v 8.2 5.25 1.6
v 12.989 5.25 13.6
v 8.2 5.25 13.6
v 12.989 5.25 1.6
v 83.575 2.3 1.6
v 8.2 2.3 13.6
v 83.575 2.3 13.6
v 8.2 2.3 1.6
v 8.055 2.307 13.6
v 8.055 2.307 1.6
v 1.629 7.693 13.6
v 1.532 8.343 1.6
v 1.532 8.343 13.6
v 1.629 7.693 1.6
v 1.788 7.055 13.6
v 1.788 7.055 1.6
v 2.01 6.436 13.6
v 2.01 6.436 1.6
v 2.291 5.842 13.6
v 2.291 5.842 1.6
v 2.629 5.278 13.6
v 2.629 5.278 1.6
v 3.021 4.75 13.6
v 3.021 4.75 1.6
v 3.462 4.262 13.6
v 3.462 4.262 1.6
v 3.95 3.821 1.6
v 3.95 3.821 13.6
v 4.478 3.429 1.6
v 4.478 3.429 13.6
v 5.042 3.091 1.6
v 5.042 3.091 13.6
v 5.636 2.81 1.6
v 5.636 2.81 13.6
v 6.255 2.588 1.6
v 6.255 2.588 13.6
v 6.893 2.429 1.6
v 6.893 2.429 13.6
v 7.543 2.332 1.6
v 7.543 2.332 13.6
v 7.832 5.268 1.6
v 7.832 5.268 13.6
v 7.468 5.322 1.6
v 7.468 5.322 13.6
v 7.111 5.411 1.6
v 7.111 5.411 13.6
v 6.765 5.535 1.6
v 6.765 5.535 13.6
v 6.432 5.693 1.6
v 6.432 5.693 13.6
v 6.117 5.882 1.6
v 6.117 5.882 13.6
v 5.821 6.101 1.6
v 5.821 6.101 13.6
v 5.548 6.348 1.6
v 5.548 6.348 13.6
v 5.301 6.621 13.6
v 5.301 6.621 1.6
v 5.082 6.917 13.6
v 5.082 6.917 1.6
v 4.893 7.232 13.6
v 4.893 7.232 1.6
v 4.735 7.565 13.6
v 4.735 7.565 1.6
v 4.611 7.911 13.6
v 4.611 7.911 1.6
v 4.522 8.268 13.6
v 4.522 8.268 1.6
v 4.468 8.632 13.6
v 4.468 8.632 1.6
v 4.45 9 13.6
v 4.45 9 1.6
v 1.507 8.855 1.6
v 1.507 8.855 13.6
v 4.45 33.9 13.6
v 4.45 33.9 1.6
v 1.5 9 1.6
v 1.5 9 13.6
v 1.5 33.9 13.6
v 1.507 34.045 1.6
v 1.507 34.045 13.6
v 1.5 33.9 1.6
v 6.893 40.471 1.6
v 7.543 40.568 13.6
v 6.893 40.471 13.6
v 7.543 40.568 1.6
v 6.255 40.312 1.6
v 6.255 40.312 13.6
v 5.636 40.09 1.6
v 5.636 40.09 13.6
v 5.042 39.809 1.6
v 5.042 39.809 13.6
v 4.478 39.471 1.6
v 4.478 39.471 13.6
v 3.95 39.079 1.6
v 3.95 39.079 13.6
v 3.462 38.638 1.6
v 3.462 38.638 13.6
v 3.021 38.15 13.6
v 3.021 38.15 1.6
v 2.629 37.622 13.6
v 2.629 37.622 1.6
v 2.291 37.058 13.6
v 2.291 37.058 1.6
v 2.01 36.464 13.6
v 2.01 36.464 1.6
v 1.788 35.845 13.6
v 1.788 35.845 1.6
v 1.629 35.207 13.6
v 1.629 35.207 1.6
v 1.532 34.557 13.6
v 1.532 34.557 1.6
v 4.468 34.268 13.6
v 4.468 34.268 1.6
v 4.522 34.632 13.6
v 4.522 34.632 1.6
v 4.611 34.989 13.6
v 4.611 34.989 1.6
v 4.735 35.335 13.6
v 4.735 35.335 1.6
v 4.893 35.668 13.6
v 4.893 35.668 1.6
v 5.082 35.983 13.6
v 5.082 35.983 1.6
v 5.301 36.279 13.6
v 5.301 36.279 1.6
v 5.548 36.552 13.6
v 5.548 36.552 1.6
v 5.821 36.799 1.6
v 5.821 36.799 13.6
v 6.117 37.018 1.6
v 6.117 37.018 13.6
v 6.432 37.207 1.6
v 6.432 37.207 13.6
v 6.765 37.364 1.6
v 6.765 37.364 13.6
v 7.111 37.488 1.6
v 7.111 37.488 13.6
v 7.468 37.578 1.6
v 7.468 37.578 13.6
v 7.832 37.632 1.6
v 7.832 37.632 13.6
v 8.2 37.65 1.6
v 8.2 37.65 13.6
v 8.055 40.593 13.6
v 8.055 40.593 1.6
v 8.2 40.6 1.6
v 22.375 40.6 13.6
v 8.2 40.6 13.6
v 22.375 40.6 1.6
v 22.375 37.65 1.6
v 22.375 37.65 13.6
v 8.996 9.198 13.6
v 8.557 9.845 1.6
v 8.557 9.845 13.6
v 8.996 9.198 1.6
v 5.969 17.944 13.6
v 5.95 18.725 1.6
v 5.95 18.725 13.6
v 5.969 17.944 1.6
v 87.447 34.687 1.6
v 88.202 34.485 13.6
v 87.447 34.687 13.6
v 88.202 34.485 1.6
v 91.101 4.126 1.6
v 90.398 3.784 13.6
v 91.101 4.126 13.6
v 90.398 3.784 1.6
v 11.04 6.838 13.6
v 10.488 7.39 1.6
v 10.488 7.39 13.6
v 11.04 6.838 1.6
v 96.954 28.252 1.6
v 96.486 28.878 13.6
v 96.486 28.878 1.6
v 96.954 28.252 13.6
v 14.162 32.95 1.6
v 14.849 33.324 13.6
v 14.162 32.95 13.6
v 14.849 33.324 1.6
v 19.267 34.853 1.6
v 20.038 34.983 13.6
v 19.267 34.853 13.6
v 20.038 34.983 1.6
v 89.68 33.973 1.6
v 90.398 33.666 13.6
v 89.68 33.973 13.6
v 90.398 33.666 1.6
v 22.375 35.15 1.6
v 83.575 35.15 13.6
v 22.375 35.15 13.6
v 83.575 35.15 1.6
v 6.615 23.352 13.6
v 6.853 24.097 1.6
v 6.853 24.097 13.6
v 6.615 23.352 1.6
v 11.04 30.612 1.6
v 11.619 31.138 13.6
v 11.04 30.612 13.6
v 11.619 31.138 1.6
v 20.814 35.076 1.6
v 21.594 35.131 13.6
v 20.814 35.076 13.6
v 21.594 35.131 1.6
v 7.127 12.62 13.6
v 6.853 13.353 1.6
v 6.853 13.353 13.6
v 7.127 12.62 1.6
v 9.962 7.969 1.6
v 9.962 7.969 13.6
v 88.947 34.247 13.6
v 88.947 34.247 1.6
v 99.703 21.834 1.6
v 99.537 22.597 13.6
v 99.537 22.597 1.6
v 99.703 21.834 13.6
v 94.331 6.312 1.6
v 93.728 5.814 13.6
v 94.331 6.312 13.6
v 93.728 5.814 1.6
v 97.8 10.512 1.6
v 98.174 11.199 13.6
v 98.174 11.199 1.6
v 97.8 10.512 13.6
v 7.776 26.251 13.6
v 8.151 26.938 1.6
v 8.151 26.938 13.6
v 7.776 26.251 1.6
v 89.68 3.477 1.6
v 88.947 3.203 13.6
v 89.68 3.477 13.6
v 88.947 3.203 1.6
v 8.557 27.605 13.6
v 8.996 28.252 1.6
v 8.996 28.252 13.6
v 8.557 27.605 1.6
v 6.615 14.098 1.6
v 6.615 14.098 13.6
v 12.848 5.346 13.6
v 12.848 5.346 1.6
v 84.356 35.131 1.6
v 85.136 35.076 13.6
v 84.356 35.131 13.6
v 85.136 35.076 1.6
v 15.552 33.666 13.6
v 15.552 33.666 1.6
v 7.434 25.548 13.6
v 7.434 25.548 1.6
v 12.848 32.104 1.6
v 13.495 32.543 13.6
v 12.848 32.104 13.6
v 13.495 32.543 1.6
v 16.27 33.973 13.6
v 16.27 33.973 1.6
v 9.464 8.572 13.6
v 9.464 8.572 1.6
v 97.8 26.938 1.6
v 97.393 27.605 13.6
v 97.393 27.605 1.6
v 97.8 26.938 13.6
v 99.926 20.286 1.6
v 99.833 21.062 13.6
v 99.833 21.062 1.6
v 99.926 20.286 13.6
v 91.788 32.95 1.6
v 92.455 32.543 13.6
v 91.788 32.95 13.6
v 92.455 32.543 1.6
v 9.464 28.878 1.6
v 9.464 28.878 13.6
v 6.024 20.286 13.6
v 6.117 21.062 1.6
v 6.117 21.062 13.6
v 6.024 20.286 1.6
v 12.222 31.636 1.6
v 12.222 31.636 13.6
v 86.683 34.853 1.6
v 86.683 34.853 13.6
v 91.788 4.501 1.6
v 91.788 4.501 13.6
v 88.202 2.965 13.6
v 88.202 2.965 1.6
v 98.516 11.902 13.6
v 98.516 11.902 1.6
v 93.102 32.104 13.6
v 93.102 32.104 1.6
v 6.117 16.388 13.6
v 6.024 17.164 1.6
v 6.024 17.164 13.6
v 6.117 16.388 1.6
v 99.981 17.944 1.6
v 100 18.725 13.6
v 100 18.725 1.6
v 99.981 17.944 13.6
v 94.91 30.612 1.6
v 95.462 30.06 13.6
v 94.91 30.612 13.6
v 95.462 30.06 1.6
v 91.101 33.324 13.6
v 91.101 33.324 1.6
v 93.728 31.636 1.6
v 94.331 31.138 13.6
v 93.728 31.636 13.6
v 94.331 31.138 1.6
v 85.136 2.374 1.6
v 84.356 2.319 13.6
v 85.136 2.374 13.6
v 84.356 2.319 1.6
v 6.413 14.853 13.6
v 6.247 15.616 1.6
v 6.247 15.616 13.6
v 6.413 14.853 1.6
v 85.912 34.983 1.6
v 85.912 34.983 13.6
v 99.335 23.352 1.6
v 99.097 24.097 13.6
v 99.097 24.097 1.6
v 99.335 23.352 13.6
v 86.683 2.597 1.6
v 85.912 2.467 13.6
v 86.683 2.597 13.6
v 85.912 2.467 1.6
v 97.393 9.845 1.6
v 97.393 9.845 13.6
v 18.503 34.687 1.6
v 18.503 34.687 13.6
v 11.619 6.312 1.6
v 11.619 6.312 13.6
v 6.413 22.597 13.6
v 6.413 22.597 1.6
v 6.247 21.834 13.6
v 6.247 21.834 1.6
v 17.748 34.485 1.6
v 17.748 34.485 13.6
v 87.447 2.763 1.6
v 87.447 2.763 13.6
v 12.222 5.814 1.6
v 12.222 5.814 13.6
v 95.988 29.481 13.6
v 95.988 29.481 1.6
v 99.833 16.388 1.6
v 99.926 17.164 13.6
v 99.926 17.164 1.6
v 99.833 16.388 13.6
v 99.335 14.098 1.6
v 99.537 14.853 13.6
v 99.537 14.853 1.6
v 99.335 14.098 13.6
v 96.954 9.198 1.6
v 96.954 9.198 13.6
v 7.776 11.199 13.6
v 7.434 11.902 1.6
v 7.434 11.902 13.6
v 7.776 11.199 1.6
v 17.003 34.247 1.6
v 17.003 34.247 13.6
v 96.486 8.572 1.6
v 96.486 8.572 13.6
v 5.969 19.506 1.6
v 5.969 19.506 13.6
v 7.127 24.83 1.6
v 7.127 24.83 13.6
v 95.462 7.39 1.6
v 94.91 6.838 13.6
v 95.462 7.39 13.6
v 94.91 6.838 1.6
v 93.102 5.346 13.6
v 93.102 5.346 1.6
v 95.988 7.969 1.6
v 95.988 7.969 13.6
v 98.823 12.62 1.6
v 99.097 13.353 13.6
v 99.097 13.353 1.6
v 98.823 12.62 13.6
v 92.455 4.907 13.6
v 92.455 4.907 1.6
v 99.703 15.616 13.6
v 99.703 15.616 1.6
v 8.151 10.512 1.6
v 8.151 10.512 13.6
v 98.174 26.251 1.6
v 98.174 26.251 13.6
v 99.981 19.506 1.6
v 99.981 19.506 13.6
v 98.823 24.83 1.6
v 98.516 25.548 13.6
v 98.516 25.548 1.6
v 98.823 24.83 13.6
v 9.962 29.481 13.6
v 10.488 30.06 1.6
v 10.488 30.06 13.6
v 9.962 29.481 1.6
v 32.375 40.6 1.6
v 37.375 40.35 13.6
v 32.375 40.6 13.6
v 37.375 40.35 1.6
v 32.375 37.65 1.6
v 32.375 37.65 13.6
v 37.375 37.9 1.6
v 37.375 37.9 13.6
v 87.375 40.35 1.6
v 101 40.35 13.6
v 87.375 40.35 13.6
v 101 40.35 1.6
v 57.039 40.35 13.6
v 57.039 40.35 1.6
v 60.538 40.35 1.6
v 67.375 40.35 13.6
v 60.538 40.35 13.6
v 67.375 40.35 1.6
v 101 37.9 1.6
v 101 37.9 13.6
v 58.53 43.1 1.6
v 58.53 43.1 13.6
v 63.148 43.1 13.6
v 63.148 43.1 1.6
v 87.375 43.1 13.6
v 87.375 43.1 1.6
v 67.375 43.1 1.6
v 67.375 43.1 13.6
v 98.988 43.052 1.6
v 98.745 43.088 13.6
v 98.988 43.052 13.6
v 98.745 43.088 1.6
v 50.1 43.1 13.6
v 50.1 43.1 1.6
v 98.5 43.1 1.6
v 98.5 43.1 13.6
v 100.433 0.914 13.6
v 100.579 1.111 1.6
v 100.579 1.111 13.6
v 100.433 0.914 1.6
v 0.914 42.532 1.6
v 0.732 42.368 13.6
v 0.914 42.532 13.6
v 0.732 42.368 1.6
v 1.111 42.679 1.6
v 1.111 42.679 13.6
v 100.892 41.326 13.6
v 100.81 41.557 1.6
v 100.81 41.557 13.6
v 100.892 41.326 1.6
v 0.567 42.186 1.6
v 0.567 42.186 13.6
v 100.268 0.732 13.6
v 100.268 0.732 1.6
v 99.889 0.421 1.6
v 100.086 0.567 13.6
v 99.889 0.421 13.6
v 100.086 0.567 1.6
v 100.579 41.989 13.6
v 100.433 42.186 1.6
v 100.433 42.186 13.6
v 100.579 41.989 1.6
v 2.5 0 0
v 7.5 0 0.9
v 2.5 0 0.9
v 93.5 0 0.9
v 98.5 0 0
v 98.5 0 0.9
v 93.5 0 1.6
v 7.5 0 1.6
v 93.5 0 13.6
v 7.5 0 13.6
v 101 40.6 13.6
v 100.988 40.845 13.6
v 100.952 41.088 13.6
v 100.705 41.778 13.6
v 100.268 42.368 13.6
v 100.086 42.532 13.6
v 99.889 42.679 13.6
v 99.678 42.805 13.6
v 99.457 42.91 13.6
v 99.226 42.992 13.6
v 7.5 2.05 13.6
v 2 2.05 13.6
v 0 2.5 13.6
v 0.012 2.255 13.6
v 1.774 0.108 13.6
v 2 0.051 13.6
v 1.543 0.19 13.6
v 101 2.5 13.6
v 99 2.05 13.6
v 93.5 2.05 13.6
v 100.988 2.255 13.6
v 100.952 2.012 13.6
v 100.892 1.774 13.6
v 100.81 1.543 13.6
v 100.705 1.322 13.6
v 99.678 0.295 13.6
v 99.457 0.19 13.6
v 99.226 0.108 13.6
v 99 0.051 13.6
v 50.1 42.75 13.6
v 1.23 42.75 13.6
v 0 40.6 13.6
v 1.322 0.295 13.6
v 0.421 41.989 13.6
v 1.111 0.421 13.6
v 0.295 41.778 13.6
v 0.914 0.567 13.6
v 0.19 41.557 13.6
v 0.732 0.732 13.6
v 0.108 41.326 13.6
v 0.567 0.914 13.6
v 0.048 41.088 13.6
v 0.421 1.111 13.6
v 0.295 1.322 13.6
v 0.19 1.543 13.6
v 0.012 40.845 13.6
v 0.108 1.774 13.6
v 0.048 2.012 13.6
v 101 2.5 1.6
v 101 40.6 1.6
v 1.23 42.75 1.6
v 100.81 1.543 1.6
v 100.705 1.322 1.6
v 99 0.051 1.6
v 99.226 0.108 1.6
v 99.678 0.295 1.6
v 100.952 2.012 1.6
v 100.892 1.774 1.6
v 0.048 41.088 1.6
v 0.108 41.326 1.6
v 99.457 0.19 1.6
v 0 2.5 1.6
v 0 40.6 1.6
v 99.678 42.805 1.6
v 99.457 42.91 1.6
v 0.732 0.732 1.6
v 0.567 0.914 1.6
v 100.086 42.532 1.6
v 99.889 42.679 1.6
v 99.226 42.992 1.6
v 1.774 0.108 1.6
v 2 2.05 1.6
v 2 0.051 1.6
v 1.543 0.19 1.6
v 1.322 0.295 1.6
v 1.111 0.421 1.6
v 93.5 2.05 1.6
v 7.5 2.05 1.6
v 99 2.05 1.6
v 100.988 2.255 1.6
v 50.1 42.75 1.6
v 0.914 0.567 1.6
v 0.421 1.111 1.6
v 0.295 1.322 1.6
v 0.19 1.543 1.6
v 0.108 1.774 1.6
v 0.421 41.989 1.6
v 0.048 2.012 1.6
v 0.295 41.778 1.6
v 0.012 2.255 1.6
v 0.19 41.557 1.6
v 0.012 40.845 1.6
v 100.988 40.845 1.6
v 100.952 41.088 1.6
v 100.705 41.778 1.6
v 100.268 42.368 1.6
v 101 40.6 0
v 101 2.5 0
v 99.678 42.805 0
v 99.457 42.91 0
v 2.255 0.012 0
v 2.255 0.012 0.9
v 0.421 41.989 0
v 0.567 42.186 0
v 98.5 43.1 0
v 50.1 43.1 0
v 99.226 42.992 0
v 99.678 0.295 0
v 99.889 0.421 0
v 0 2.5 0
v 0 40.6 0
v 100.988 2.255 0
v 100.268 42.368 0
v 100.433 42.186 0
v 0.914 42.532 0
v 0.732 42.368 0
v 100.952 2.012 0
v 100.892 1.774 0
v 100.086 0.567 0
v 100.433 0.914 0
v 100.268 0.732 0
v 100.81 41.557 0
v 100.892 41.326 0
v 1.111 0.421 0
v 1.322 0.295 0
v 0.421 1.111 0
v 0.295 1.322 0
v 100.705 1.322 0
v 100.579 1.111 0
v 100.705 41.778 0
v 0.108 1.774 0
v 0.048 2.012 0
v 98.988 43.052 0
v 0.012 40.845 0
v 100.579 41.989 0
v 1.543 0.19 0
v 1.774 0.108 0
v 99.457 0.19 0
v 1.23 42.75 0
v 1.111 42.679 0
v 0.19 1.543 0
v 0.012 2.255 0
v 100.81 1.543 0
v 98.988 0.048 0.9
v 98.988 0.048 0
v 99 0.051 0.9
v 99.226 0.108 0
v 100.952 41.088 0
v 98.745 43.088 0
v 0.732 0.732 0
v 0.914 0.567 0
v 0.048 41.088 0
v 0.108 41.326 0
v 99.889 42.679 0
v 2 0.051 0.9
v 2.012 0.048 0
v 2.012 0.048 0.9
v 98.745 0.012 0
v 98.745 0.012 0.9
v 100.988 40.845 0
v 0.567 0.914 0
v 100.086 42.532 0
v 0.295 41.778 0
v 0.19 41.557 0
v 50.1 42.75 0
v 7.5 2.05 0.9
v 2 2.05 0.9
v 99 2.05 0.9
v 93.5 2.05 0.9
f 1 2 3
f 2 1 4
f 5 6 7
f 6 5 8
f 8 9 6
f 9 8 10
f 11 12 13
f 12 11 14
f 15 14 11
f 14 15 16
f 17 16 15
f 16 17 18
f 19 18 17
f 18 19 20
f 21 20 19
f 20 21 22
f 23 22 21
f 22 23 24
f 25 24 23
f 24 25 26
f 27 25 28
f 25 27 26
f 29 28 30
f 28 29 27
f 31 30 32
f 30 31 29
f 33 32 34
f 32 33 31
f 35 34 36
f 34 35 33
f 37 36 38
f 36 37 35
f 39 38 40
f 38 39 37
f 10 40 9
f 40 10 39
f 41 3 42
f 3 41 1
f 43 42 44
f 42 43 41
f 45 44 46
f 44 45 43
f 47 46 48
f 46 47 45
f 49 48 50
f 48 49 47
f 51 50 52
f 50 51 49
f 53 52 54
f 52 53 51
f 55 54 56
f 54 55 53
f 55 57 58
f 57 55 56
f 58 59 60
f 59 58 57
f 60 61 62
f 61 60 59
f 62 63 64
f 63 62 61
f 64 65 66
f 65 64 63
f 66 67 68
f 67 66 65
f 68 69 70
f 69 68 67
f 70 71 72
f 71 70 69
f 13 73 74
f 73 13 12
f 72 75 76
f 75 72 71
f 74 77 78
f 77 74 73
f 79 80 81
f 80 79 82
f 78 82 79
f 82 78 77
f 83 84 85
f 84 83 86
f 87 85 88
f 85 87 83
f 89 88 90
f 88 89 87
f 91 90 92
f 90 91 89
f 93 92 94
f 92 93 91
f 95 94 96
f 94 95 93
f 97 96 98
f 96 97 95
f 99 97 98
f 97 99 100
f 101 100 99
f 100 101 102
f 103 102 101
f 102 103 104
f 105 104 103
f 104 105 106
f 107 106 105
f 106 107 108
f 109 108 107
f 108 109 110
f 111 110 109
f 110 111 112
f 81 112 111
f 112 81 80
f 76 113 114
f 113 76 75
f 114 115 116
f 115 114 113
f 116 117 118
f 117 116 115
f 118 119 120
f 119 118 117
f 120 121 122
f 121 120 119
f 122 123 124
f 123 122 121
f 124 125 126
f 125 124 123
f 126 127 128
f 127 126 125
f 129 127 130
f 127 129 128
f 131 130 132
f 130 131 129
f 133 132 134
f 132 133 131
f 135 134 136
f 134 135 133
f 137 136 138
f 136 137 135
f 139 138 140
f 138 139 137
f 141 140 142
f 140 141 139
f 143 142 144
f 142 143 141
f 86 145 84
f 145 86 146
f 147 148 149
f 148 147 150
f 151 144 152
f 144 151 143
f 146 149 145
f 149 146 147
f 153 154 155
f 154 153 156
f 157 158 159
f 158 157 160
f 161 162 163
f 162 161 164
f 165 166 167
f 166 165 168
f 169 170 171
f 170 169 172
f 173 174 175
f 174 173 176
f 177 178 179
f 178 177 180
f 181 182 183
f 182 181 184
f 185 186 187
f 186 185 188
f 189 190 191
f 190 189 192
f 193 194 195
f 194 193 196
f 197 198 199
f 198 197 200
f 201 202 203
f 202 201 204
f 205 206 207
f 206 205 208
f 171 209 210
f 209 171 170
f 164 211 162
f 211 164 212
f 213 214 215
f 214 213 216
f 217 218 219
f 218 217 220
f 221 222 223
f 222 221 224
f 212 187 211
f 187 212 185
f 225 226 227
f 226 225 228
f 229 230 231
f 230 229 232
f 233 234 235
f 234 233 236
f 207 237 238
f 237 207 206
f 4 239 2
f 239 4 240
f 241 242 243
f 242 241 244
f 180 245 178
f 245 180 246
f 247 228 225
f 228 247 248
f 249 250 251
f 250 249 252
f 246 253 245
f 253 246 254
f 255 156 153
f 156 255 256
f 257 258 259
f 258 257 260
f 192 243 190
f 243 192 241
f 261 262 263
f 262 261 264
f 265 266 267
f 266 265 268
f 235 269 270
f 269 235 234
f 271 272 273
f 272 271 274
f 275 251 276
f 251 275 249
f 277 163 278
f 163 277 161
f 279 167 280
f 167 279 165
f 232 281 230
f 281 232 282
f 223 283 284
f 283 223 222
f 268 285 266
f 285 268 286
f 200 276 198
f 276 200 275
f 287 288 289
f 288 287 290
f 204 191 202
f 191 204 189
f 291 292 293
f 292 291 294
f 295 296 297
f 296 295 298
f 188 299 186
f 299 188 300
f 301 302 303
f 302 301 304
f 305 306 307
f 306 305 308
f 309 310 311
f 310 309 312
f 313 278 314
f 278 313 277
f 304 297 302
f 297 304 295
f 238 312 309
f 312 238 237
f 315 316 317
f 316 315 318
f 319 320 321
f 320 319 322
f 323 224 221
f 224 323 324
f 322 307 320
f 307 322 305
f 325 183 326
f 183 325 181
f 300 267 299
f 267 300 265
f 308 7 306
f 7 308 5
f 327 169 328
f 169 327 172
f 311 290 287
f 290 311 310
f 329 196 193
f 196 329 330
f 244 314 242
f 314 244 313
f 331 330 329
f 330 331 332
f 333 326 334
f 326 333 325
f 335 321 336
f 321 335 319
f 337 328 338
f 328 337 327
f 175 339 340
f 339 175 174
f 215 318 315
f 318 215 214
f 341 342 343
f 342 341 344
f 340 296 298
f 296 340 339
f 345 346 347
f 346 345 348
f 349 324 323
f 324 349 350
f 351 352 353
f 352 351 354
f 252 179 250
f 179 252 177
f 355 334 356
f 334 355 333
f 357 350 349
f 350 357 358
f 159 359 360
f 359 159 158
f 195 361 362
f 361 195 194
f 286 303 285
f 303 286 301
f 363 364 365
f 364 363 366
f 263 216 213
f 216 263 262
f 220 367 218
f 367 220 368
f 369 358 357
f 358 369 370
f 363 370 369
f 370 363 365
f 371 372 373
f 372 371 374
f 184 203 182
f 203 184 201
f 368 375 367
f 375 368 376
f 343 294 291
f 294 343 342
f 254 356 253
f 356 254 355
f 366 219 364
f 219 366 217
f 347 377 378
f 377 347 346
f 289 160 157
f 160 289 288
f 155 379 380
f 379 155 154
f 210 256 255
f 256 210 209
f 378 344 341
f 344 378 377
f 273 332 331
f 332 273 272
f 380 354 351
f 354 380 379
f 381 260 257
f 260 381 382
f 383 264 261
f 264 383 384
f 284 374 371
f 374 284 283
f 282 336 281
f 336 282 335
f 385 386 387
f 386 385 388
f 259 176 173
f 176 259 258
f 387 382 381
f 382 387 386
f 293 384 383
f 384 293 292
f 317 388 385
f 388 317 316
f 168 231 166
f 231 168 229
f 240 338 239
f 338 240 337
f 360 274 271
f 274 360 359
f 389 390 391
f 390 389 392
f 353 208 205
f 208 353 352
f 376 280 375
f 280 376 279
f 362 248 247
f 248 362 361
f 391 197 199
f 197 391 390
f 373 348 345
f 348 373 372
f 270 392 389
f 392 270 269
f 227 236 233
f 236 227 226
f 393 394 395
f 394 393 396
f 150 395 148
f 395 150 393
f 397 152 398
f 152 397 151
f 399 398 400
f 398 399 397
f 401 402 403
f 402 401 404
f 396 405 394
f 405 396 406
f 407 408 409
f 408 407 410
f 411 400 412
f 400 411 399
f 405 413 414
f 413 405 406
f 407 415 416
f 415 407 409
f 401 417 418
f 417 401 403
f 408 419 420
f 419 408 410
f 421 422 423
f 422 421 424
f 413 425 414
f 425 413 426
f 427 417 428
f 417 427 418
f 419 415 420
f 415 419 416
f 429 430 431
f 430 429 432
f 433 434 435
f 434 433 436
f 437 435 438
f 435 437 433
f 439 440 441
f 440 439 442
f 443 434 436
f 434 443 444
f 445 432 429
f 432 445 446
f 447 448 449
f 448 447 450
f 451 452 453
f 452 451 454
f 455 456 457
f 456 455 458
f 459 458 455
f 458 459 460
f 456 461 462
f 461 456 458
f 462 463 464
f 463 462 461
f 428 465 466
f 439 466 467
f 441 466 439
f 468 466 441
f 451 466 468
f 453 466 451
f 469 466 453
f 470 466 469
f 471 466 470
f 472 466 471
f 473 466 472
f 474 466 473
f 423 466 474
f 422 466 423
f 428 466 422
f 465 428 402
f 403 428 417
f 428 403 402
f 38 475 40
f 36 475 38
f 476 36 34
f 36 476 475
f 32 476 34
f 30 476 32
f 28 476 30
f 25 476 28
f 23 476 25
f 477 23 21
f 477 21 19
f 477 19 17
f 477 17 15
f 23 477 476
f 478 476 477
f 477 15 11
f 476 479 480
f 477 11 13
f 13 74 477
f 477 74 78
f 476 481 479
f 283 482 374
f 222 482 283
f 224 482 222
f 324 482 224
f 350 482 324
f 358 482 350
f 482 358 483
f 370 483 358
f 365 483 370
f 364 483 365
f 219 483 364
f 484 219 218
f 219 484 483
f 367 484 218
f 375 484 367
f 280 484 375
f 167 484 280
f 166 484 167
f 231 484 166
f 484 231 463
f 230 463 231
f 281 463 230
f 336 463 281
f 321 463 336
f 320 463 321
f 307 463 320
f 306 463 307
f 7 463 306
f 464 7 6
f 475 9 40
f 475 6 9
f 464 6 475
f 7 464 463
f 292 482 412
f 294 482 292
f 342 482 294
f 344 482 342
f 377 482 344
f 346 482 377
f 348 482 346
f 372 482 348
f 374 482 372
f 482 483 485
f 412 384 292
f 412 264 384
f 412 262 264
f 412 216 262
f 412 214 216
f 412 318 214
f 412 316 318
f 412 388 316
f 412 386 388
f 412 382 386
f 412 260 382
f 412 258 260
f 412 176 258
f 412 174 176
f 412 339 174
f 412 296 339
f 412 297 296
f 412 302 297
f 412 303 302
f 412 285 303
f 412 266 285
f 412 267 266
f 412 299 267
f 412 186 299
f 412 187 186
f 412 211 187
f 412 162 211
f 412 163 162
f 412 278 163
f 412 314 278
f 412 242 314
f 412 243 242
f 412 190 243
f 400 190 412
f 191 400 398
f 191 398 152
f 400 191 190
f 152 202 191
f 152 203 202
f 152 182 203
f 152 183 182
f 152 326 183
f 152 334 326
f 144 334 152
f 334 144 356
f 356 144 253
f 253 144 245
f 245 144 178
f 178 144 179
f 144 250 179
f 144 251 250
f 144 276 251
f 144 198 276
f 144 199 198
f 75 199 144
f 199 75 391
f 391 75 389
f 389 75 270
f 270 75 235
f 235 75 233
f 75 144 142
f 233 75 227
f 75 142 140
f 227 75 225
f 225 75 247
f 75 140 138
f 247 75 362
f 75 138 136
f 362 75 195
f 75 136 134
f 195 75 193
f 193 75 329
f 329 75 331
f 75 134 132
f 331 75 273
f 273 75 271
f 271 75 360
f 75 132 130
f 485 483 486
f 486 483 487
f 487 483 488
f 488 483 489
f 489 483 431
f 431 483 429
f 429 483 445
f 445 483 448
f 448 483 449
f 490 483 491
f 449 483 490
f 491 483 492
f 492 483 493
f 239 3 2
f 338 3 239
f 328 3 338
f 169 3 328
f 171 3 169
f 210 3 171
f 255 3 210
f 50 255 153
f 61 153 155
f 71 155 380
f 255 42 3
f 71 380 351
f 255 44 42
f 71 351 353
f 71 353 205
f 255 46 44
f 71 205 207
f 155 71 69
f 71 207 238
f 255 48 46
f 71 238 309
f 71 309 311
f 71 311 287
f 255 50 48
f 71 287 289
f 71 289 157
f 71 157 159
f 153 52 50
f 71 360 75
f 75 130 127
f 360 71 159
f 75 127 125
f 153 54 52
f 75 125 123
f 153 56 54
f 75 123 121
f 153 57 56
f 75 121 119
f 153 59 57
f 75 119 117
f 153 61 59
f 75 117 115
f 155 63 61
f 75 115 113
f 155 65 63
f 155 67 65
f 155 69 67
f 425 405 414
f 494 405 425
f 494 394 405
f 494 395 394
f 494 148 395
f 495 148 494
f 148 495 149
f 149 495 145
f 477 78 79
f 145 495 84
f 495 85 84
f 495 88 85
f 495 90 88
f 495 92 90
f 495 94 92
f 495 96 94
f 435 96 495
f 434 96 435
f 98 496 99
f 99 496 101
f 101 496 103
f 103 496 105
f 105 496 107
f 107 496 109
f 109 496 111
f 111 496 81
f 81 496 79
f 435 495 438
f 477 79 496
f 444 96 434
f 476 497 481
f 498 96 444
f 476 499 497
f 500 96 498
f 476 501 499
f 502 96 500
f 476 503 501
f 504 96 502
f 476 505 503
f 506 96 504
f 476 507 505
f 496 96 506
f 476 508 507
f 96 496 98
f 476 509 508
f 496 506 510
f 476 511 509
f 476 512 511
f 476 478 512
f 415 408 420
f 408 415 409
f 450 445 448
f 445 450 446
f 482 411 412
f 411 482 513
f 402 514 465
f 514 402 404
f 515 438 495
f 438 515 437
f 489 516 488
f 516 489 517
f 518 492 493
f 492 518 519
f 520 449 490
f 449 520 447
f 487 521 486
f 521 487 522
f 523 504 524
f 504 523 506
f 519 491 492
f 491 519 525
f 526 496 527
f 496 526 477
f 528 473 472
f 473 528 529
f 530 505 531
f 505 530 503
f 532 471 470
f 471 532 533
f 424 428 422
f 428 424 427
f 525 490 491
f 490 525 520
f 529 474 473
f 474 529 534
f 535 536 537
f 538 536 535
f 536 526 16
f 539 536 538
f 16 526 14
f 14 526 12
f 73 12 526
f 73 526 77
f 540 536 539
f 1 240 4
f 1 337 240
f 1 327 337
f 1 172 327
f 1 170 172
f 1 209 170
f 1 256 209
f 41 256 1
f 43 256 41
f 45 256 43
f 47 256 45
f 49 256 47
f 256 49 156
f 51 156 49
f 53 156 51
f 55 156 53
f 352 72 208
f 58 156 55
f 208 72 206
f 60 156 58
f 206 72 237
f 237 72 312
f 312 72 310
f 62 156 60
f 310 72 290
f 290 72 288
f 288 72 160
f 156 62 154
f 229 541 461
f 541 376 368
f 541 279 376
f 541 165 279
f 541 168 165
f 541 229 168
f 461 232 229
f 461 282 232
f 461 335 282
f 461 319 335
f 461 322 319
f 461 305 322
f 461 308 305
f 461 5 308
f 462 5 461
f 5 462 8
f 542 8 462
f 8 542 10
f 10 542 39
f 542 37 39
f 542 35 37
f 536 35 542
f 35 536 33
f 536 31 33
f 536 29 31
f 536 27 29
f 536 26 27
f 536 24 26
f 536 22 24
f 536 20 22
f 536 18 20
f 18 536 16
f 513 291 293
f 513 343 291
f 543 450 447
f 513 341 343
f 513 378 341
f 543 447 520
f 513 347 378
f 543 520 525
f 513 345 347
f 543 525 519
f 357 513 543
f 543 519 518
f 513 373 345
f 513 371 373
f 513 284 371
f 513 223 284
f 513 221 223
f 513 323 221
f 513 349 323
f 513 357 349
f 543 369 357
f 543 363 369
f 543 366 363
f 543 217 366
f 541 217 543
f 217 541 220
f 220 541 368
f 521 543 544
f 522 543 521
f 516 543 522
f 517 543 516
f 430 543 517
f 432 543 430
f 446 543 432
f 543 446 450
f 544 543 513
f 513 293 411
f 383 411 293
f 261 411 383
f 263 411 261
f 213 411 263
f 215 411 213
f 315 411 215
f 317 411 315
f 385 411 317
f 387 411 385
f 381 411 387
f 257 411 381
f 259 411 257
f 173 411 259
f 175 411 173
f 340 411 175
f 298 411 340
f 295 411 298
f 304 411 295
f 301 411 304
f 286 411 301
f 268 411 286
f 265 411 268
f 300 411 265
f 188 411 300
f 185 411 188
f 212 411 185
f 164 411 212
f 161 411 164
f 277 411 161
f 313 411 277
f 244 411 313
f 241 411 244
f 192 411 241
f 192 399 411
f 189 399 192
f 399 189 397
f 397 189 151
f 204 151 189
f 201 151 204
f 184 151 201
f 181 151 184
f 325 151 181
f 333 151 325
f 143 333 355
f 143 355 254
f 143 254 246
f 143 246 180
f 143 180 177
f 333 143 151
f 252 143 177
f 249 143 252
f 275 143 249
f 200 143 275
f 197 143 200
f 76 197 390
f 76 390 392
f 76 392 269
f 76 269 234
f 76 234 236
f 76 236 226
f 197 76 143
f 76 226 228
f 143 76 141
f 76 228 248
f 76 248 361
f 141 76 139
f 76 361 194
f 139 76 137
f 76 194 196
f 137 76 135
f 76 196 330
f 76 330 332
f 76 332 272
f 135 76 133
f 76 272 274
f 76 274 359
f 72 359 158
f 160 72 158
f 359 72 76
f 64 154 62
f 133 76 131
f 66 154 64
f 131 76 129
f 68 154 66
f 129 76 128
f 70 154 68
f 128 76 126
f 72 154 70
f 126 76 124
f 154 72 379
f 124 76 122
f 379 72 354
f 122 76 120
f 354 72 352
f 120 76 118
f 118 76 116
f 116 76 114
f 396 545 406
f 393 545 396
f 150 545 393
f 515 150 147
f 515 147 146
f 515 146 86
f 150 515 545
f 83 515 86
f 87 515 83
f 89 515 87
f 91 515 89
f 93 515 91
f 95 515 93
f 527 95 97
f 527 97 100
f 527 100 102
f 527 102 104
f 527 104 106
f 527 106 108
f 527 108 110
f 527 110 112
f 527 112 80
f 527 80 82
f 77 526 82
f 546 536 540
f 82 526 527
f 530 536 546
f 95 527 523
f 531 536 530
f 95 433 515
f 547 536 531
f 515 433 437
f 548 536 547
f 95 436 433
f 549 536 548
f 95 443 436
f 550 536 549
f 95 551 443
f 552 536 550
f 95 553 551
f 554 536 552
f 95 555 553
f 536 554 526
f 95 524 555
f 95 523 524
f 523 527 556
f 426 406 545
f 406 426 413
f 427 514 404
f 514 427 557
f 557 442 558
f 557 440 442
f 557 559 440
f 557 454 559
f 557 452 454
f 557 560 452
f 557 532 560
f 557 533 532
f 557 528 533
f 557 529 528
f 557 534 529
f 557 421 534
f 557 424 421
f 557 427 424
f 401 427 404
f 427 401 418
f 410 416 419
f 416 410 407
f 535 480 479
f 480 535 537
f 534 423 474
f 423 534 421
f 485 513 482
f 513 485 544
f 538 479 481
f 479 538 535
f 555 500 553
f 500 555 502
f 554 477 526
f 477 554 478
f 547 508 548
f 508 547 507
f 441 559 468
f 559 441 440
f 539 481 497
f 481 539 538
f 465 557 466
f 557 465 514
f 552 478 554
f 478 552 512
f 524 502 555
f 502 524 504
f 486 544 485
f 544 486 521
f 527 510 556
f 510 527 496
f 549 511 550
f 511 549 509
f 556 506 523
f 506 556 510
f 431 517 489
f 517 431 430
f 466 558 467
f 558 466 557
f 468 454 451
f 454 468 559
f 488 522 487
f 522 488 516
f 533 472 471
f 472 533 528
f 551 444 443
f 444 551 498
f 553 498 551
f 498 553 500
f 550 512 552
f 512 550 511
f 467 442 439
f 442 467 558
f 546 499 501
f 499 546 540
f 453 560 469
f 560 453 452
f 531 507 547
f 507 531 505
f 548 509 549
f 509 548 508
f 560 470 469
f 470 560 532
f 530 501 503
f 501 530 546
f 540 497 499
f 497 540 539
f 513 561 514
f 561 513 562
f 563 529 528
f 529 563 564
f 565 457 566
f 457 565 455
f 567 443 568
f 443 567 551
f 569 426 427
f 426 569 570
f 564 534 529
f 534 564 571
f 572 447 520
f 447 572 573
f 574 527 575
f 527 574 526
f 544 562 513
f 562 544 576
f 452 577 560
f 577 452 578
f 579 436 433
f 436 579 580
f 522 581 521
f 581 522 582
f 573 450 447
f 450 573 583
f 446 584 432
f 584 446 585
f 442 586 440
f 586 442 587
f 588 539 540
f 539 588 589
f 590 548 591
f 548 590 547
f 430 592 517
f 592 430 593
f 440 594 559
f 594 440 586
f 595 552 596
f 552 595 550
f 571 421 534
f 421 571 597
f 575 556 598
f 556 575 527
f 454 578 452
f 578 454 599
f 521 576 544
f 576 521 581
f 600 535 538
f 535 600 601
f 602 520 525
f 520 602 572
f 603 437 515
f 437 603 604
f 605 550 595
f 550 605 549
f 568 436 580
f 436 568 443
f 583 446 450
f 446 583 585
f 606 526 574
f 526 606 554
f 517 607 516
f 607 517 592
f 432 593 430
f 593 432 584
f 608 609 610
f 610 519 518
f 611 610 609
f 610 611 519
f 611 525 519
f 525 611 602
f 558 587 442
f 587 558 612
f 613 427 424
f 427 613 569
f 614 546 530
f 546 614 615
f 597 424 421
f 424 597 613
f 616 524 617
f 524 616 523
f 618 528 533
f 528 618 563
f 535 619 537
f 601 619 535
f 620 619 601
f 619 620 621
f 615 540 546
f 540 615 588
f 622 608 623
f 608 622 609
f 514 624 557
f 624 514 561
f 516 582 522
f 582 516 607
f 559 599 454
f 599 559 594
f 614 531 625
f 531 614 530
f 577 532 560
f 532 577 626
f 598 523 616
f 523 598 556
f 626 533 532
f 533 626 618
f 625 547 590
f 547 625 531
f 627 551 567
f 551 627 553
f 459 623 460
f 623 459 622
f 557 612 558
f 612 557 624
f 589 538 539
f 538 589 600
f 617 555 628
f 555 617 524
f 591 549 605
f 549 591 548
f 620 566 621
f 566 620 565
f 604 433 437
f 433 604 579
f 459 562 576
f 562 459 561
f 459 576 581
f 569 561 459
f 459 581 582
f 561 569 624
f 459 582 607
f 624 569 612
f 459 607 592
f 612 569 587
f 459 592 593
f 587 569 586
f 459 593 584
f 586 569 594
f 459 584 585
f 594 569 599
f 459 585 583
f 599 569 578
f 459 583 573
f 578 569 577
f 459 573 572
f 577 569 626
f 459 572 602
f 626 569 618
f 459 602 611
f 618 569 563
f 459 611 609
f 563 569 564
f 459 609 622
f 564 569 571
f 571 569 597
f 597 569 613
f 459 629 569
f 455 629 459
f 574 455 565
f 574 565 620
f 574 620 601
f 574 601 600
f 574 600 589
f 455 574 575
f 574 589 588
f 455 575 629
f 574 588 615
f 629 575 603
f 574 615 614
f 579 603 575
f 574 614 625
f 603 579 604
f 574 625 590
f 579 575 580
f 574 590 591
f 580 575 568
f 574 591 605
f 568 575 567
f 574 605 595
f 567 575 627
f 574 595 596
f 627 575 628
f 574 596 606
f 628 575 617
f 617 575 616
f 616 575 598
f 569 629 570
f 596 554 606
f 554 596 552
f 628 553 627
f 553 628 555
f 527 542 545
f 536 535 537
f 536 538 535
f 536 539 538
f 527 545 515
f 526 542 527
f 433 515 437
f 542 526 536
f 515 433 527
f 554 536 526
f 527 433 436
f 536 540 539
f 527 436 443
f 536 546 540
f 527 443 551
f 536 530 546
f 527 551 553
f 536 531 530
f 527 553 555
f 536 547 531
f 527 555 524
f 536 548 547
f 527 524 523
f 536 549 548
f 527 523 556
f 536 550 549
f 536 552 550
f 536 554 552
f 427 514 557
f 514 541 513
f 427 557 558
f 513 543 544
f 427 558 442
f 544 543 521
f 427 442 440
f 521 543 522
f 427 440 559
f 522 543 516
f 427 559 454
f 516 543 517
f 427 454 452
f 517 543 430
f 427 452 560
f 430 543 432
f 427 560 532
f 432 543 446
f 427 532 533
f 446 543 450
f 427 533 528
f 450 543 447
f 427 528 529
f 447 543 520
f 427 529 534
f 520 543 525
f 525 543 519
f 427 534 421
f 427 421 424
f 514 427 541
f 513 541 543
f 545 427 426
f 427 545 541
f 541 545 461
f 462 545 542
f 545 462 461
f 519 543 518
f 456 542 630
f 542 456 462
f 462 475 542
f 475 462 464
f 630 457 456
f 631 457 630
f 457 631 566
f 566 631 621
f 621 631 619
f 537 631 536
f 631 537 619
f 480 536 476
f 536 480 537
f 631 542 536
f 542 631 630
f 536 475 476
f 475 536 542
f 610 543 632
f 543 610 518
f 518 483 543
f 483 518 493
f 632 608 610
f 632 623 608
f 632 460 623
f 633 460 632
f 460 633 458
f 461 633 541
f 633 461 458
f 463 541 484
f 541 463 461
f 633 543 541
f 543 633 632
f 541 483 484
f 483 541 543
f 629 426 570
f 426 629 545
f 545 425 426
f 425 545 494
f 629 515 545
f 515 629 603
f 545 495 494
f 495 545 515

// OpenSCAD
module Path(){
  translate([0, 0, -0.002])union(){
      translate([0, 0, -0.002])hull(){
          translate([0, 0, -0.002])cylinder(d=2.95,h=13.008,$fn=64);
          translate([-14.175, 0, -0.002])cylinder(d=2.95,h=13.008,$fn=64);
        }

      translate([-14.175, 0, -0.002])linear_extrude(height=13)translate([0, 5.225, 0])rotate([0, 0, 180])intersection(){
                difference(){
                  circle(d=13.4);
                  circle(d=7.5);
                }

                translate([0, 0, -0.1])polygon(points=[[0, 0], [0, 0.134e2], [0.134e2, 0.820513355428726644e-15]]);
              }

      translate([0, 0, -0.002])hull(){
          translate([-19.4, 5.224999999999999, -0.002])cylinder(d=2.95,h=13.008,$fn=64);
          translate([-19.4, 30.125000000000007, -0.002])cylinder(d=2.95,h=13.008,$fn=64);
        }

      translate([-19.4, 30.125000000000007, -0.002])linear_extrude(height=13)translate([5.225, 0, 0])rotate([0, 0, 90])intersection(){
                difference(){
                  circle(d=13.4);
                  circle(d=7.5);
                }

                translate([0, 0, -0.1])polygon(points=[[0, 0], [0, 0.134e2], [0.134e2, 0.820513355428726644e-15]]);
              }

      translate([0, 0, -0.002])hull(){
          translate([-14.175, 35.35000000000001, -0.002])cylinder(d=2.95,h=13.008,$fn=64);
          translate([-6.39877952554492e-16, 35.35000000000001, -0.002])cylinder(d=2.95,h=13.008,$fn=64);
        }

    }
}
module SmdDispenser(){
  difference(){
    color("pink")union(){
        translate([0, 0, 1.6])difference(){
            union()translate([2.5, 2.5, 0])hull(){
                  cylinder(d=5,h=12,$fn=64);
                  translate([96, 0, 0])cylinder(d=5,h=12,$fn=64);
                  translate([0, 38.1, 0])cylinder(d=5,h=12,$fn=64);
                  translate([96, 38.1, 0])cylinder(d=5,h=12,$fn=64);
                }

            translate([22.375, 39.12500000000001, -0.002])union(){
                translate([6.39877952554492e-16, -35.35000000000001, -0.002])union(){
                    translate([0, 0, -0.002])Path();
                    translate([0, 14.950000000000005, 0])hull(){
                        translate([0, 0, -0.1])cylinder(d=32.85,h=13.208,$fn=132);
                        translate([61.19999999999999, 0, -0.1])cylinder(d=32.85,h=13.408,$fn=132);
                      }

                  }

                translate([0, 0, -0.004])hull(){
                    translate([0, -1.475, -0.004])cube([10, 2.95, 12.016]);
                    translate([5, -1.225, -0.004])cube([10, 2.45, 12.016]);
                  }

                translate([0, -1.225, -0.004])color("blue")cube([101, 2.45, 12.016]);
                translate([37, 0, -0.004])hull(){
                    translate([1, 7.374999999999999, -0.004])cube([6, 0.001, 12.016]);
                    translate([-3, 0, -0.004])cube([3, 0.001, 12.016]);
                  }

                translate([45, 0, -0.1])cube([20, 8.85, 13.208]);
              }

          }

        union()translate([2.5, 2.5, 0])hull(){
              cylinder(d=5,h=1.6,$fn=64);
              translate([96, 0, 0])cylinder(d=5,h=1.6,$fn=64);
              translate([0, 38.1, 0])cylinder(d=5,h=1.6,$fn=64);
              translate([96, 38.1, 0])cylinder(d=5,h=1.6,$fn=64);
            }

      }

    translate([-0.1, 42.75, -0.1])color("silver")cube([50.2, 0.5, 14.8]);
    translate([0, 0, 1])color("Aquamarine")union(){
          translate([2, 0, -0.1])cube([5.5, 2.05, 14.8]);
          translate([93.5, 0, -0.1])cube([5.5, 2.05, 15]);
        }

  }
}
$fn=64;
SmdDispenser();
